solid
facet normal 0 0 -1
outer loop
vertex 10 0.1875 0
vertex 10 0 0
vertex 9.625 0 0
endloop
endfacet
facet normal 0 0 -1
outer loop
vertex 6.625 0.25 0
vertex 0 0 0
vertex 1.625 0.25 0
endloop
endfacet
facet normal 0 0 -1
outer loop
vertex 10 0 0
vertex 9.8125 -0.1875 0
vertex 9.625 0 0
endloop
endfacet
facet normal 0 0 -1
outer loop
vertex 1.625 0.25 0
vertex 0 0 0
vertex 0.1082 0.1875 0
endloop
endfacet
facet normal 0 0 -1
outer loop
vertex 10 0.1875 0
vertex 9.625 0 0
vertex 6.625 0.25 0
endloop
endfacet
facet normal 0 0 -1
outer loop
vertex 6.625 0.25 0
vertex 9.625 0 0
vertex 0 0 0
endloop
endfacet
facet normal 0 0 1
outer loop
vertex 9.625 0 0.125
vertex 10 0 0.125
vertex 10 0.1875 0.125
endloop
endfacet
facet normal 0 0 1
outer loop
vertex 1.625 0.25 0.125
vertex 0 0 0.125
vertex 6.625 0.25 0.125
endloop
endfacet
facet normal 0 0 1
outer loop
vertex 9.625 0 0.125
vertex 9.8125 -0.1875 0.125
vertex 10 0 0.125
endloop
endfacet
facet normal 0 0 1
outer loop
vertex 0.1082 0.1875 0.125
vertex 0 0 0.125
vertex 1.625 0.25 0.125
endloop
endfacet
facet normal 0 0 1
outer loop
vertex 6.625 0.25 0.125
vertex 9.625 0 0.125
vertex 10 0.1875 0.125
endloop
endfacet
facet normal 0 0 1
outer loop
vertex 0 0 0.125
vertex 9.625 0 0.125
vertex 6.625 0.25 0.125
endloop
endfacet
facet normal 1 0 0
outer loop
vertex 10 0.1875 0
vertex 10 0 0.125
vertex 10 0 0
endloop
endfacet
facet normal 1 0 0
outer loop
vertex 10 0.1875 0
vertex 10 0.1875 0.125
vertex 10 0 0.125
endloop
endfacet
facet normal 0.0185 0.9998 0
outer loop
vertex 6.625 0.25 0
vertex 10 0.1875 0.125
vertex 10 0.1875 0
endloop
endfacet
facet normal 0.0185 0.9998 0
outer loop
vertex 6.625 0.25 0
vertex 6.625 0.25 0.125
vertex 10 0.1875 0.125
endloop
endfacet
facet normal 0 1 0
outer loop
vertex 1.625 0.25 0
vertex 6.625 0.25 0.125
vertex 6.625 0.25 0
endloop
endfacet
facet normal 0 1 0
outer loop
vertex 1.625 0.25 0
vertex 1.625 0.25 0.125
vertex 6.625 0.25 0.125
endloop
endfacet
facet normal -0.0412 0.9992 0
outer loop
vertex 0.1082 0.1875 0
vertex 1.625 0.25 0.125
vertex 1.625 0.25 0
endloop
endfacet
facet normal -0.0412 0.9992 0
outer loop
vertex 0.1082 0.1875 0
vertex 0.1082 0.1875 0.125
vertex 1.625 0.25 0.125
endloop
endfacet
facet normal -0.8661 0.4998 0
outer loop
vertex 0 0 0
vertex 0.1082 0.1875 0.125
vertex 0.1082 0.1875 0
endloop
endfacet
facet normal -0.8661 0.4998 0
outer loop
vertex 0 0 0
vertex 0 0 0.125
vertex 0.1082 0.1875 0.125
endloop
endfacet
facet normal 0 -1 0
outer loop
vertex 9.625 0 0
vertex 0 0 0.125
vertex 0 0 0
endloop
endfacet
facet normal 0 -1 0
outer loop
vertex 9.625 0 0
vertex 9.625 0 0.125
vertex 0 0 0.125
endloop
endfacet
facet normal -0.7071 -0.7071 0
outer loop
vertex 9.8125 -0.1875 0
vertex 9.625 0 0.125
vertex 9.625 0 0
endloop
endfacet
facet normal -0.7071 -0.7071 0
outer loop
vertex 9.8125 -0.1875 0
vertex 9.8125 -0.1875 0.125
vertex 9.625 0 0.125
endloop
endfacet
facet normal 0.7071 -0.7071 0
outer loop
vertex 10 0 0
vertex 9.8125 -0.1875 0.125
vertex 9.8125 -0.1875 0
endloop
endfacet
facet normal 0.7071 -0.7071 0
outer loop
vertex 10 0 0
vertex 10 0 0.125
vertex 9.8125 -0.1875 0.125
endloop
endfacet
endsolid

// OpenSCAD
// file: motor_stick_data.scad
//#####################################
// motor-stick-data.scad
// (c) 2021 by Roie R. Black
//*************************************

density = 4;

ms_thickness = 1/8;
motor_stick_rear_height = 0.1875;
ms_length = 10;

ms_points = [
	[0,0],
	[9.625,0],
	[9.8125,-0.1875],
	[10.0,0],
	[10.0,0.1875],
	[6.625,0.25],
	[1.625,0.25],
	[0.10825,0.1875],
	[0,0]
];
// file: colors.scad
// colors.scad
// Credit: David Powell, OpenSCAN Forum



//group ABS_<colorname>
//	discription  common 3d printer ABS filament colors
// actual colours may need some tweaking

ABS_Nature =[0.8,0.8,0.8,0.8];
ABS_White =[0.9,0.9,0.9,1];
ABS_Black =[0.1,0.1,0.1,1];
ABS_Red = [0.7,0,0,1];
ABS_Green = [0,0.7,0,1];
ABS_Blue = [0,0,0.7,1];
ABS_Orange =[0.8,0.4,0,1];
ABS_Purple =[0.7,0,0.7,1];
ABS_Brown =[0.6,0.2,0.2,1];
ABS_Glow_Blue =[0,0,.99,1];
ABS_Flurescence_Green =[0,1,0,1];
ABS_Flurescence_Yellow = [0.9,0.9,0,1];

//group PLA_<colorname>
//	discription  common 3d printer PLA filament colors
// actual colours may need some tweaking

PLA_Nature =[0.8,0.8,0.8,0.8];
PLA_White =[0.9,0.9,0.9,1];
PLA_Black =[0.1,0.1,0.1,1];
PLA_Red = [0.7,0,0,1];
PLA_Green = [0,0.7,0,1];
PLA_Blue = [0,0,0.7,1];
PLA_Orange =[0.8,0.4,0,1];
PLA_Purple =[0.7,0,0.7,1];
PLA_Brown =[0.6,0.2,0.2,1];
PLA_Glow_Blue =[0,0,.99,1];
PLA_Flurescence_Green =[0,1,0,1];
PLA_Flurescence_Yellow = [0.9,0.9,0,1];

//group ANODIZED_<colorname>
//	discription  common aluminium anodized colors
// these don't seem to follow normal color tables as the process
// produces a color change difference to the named color
// dew to base metal
// actual colours may need some tweaking

ANODIZED_Red =[0.7,0,0,1];
ANODIZED_Gold =[0.8,0.8,0.0,1];
ANODIZED_Black =[0.1,0.1,0.1,1];
ANODIZED_Blue =[0,0,0.7,1];
ANODIZED_Green =[0,0.5,0,1];
ANODIZED_Gray =[0.4,0.4,0.4,1];
ANODIZED_Dark_Blue =[0,0.2,0.6,1];
ANODIZED_Lime_Green =[0,0.8,0,1];
ANODIZED_Purple =[0.5,0,0.7,1];		//more blue than purple
ANODIZED_Light_Blue =[0.4,0.4,1,1];
ANODIZED_Pink =[0.7,0,0.7,1];		//more purlpe than pink
ANODIZED_Orange =[0.9,0.5,0,1];
ANODIZED_Scandia_Gold =[0.9,0.6,0.3,1];
ANODIZED_Copper =[0.7,0.5,0,1];		//more brown than copper
ANODIZED_Clear =[0.7,0.7,0.9,1];	//natural aluminium color
ANODIZED_Light_Bronze =[0.4,0.4,0.3,1]; //more silver than bronze
ANODIZED_Gold_Nickel =[0.8,0.8,0.6,1];
ANODIZED_Brush_Nickel =[0.8,0.8,0.7,1];

//group METAL_<typename>
//	discription common metal colors
// colors need tweaking

METAL_Aluminium = [0.7,0.7,0.8,1];
METAL_Brass = [0.88,0.78,0.5,1];
METAL_Copper = [0.9,0.6,0.5,1];
METAL_Steel = [0.9,0.9,0.8,1];
METAL_Stainless = [0.8,0.8,0.7,1];
METAL_Titanium = [0.7,0.7,0.6,1];
METAL_Bronze = [0.9,0.4,0.4,1];
METAL_Gold = [0.9,0.9,0.0,1];
METAL_Silver = [0.8,0.8,0.8,1];
METAL_Iron = [0.6,0.6,0.6,1];

// group WOOD_<typename>
//	discription common wood colors
// probabaly wrong

WOOD_Oak = [0.4,0.2,0.2,1];
WOOD_Birch = [0.8,0.8,0.4,1];
WOOD_Red = [0.7,0.3,0.3,1];
WOOD_pine = [0.8,0.8,0.4,1];
WOOD_Beach = [0.8,0.6,0.3,1];
WOOD_Spruce = [0.8,0.8,0.7,1];
WOOD_Balsa = [0.95,0.86,0.73];

// group GLASS_<color>
//	discription common glass colors
// needs tweaking

GLASS_Clear = [0.8,0.8,0.8,0.2];
GLASS_Red = [0.8,0,0,0.4];
GLASS_Green = [0,0.8,0,.4];
GLASS_Blue = [0,0,0.8,.4];
GLASS_Brown = [0.5,0.3,0.1,.4];

CONCRETE = [210/255, 209/255, 205/255];
// main file
//#####################################
// motor-stick.scad
// (c) 2021 - Roie R. Black
//*************************************
include <colors.scad>
include <motor_stick_data.scad>


module motor_stick() {
  color(WOOD_Balsa)
	  linear_extrude(
	      height = ms_thickness,
	      center=false,
	      convexity=10
	  )
        polygon(ms_points);
}

//-------------------------------------
// debug display

motor_stick();
